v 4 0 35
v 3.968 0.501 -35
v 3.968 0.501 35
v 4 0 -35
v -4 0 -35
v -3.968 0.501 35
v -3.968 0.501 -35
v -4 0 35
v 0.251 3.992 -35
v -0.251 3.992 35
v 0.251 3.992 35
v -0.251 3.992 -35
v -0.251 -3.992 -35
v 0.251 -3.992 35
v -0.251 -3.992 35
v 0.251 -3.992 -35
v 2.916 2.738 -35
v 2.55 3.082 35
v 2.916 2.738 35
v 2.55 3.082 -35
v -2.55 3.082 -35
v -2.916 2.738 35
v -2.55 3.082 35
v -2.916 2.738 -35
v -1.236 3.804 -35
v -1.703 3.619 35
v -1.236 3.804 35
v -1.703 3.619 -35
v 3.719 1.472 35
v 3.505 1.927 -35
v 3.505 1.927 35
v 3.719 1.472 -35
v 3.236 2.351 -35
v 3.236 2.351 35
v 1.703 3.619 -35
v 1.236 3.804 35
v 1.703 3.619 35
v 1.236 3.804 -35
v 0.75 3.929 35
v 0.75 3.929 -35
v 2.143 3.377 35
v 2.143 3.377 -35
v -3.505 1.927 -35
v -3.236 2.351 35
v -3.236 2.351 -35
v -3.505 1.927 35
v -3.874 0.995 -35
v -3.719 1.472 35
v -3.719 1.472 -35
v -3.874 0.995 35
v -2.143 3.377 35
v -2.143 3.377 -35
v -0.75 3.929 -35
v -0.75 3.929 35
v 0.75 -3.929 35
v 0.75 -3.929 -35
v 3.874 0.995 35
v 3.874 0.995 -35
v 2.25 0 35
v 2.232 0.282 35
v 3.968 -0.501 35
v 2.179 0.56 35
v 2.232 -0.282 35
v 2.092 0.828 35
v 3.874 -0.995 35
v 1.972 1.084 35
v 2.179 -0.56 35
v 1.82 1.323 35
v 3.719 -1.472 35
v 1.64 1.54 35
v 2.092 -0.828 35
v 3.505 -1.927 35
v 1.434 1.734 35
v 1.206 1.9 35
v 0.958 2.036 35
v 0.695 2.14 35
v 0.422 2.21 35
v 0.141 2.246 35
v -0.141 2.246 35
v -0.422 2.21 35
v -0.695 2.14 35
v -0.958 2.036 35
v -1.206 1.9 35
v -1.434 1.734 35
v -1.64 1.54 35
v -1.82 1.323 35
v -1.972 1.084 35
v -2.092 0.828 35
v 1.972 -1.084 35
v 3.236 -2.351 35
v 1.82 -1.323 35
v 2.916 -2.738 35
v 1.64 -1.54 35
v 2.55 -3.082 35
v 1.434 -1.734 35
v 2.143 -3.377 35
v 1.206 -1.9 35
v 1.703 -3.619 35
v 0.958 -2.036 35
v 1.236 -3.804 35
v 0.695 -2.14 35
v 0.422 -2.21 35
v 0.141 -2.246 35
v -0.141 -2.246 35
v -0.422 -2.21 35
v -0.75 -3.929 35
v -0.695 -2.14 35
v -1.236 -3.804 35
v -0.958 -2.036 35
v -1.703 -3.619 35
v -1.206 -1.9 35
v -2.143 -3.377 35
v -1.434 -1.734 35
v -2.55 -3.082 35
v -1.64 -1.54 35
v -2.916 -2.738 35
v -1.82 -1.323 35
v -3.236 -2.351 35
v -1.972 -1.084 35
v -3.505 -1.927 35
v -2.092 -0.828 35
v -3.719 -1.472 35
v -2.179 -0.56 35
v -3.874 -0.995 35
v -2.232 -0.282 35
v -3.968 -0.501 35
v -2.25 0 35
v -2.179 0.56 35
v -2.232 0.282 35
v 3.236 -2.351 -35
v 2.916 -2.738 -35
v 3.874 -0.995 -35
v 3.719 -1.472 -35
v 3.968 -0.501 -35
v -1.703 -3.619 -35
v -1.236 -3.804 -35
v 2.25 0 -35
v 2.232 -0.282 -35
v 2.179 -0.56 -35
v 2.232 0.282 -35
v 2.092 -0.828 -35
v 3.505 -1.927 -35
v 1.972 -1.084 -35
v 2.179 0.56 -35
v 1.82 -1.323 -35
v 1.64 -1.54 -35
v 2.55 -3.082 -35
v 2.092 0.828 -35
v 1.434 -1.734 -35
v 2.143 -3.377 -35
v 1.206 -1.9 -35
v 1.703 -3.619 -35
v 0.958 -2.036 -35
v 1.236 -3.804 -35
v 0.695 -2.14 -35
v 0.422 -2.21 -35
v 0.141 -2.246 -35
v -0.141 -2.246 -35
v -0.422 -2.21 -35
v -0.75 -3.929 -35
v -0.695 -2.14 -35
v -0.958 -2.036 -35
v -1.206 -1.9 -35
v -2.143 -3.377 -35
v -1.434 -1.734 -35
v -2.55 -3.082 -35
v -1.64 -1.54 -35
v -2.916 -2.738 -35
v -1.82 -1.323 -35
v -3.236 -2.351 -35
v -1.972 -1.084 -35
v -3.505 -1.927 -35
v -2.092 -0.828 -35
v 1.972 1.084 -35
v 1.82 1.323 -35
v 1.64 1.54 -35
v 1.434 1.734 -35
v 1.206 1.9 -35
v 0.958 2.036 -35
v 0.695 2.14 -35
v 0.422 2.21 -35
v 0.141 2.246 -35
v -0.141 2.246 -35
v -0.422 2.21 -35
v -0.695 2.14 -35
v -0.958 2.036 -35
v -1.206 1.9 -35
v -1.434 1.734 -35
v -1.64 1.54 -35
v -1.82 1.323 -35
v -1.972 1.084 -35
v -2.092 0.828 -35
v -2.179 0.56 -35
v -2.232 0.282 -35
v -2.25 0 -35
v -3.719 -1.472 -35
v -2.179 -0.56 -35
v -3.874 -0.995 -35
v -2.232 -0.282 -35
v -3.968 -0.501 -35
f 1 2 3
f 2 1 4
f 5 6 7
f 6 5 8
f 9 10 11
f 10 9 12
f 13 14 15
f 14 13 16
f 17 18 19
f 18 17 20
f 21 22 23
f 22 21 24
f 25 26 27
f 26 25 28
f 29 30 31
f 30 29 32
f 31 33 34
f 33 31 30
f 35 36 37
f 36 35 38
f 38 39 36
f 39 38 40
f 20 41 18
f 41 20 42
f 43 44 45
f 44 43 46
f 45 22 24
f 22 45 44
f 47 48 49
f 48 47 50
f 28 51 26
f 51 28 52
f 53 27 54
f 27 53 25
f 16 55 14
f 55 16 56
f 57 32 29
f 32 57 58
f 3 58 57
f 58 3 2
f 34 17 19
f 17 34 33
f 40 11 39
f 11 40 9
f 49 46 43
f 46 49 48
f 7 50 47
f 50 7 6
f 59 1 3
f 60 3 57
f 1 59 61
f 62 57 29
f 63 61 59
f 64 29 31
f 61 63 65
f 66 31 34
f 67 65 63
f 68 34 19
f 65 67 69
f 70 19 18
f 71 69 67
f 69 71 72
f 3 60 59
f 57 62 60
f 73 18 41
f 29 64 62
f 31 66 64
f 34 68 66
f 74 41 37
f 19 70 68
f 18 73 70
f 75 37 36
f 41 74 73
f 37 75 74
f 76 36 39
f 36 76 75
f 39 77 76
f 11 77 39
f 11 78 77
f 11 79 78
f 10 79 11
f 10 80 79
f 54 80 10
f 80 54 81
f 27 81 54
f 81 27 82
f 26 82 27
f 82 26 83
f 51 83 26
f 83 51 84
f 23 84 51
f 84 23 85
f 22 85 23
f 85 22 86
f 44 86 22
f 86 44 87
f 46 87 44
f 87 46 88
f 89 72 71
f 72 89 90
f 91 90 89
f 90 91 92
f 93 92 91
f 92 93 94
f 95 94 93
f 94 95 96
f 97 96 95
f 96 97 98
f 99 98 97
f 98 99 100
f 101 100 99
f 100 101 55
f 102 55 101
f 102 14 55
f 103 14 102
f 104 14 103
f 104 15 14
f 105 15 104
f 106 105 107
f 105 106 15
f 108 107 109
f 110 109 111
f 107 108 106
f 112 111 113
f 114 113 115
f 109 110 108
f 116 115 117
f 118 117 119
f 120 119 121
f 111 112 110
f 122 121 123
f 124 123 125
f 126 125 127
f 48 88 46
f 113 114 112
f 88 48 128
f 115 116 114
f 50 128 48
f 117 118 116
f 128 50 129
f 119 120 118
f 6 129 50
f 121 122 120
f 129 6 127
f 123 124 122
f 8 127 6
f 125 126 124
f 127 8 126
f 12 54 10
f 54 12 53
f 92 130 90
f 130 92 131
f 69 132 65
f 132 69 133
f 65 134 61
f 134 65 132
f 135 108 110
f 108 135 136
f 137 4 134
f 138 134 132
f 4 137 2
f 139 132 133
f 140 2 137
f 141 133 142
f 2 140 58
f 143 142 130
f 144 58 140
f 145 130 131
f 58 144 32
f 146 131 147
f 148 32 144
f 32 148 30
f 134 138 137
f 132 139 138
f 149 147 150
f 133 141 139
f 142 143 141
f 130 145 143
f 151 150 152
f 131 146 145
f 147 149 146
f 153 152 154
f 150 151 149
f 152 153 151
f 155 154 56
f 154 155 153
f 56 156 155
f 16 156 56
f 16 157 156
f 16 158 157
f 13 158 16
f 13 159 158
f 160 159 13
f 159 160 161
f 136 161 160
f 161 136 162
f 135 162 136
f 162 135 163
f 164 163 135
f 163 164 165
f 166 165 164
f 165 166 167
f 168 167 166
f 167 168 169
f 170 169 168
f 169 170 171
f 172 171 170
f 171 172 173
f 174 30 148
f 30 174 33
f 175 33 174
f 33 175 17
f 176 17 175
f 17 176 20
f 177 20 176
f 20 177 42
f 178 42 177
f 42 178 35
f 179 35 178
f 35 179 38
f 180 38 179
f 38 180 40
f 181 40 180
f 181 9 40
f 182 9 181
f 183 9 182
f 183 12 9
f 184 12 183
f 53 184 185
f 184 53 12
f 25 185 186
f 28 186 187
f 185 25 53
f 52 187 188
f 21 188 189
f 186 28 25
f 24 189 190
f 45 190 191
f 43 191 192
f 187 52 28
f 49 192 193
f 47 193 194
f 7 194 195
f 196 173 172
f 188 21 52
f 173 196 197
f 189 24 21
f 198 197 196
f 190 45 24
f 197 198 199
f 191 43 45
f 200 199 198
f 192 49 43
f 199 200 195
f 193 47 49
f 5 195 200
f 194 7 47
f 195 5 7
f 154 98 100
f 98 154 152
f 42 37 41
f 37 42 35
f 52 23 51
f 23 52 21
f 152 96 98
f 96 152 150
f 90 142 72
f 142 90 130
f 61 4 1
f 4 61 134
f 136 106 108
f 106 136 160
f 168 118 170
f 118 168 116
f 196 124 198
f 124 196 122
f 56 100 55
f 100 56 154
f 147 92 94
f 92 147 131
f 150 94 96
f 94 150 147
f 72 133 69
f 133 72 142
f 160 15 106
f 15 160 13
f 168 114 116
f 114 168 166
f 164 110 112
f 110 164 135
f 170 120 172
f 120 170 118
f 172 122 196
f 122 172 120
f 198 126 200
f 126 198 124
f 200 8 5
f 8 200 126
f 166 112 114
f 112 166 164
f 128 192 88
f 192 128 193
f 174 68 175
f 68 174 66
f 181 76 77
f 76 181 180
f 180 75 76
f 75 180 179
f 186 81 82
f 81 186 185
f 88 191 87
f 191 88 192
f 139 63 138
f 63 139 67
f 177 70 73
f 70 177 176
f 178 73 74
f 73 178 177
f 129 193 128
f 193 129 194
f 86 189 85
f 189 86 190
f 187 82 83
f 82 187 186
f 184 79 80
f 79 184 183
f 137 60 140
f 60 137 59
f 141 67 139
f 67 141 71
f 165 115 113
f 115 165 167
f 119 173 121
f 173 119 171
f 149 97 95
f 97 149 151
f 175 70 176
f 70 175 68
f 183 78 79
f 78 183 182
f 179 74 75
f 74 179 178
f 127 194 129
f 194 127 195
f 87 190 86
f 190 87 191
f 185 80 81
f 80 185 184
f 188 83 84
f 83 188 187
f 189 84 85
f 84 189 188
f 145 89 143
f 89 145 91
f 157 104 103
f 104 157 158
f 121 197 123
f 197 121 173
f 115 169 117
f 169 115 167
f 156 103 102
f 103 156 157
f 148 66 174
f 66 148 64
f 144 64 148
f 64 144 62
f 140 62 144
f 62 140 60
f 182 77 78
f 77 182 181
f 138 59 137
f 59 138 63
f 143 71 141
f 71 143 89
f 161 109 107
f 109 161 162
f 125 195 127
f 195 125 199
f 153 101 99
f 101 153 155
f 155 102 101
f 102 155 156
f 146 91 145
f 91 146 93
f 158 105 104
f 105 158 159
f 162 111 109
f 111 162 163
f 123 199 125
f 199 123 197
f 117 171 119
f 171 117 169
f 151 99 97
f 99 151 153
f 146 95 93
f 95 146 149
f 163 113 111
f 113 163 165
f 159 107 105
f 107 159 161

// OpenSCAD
$fn = 50;


difference() {
	union() {
		translate(v = [0, 0, -35.0000000000]) {
			cylinder(h = 70, r = 4.0000000000);
		}
	}
	union() {
		translate(v = [0, 0, -100.0000000000]) {
			cylinder(h = 200, r = 2.2500000000);
		}
	}
}
